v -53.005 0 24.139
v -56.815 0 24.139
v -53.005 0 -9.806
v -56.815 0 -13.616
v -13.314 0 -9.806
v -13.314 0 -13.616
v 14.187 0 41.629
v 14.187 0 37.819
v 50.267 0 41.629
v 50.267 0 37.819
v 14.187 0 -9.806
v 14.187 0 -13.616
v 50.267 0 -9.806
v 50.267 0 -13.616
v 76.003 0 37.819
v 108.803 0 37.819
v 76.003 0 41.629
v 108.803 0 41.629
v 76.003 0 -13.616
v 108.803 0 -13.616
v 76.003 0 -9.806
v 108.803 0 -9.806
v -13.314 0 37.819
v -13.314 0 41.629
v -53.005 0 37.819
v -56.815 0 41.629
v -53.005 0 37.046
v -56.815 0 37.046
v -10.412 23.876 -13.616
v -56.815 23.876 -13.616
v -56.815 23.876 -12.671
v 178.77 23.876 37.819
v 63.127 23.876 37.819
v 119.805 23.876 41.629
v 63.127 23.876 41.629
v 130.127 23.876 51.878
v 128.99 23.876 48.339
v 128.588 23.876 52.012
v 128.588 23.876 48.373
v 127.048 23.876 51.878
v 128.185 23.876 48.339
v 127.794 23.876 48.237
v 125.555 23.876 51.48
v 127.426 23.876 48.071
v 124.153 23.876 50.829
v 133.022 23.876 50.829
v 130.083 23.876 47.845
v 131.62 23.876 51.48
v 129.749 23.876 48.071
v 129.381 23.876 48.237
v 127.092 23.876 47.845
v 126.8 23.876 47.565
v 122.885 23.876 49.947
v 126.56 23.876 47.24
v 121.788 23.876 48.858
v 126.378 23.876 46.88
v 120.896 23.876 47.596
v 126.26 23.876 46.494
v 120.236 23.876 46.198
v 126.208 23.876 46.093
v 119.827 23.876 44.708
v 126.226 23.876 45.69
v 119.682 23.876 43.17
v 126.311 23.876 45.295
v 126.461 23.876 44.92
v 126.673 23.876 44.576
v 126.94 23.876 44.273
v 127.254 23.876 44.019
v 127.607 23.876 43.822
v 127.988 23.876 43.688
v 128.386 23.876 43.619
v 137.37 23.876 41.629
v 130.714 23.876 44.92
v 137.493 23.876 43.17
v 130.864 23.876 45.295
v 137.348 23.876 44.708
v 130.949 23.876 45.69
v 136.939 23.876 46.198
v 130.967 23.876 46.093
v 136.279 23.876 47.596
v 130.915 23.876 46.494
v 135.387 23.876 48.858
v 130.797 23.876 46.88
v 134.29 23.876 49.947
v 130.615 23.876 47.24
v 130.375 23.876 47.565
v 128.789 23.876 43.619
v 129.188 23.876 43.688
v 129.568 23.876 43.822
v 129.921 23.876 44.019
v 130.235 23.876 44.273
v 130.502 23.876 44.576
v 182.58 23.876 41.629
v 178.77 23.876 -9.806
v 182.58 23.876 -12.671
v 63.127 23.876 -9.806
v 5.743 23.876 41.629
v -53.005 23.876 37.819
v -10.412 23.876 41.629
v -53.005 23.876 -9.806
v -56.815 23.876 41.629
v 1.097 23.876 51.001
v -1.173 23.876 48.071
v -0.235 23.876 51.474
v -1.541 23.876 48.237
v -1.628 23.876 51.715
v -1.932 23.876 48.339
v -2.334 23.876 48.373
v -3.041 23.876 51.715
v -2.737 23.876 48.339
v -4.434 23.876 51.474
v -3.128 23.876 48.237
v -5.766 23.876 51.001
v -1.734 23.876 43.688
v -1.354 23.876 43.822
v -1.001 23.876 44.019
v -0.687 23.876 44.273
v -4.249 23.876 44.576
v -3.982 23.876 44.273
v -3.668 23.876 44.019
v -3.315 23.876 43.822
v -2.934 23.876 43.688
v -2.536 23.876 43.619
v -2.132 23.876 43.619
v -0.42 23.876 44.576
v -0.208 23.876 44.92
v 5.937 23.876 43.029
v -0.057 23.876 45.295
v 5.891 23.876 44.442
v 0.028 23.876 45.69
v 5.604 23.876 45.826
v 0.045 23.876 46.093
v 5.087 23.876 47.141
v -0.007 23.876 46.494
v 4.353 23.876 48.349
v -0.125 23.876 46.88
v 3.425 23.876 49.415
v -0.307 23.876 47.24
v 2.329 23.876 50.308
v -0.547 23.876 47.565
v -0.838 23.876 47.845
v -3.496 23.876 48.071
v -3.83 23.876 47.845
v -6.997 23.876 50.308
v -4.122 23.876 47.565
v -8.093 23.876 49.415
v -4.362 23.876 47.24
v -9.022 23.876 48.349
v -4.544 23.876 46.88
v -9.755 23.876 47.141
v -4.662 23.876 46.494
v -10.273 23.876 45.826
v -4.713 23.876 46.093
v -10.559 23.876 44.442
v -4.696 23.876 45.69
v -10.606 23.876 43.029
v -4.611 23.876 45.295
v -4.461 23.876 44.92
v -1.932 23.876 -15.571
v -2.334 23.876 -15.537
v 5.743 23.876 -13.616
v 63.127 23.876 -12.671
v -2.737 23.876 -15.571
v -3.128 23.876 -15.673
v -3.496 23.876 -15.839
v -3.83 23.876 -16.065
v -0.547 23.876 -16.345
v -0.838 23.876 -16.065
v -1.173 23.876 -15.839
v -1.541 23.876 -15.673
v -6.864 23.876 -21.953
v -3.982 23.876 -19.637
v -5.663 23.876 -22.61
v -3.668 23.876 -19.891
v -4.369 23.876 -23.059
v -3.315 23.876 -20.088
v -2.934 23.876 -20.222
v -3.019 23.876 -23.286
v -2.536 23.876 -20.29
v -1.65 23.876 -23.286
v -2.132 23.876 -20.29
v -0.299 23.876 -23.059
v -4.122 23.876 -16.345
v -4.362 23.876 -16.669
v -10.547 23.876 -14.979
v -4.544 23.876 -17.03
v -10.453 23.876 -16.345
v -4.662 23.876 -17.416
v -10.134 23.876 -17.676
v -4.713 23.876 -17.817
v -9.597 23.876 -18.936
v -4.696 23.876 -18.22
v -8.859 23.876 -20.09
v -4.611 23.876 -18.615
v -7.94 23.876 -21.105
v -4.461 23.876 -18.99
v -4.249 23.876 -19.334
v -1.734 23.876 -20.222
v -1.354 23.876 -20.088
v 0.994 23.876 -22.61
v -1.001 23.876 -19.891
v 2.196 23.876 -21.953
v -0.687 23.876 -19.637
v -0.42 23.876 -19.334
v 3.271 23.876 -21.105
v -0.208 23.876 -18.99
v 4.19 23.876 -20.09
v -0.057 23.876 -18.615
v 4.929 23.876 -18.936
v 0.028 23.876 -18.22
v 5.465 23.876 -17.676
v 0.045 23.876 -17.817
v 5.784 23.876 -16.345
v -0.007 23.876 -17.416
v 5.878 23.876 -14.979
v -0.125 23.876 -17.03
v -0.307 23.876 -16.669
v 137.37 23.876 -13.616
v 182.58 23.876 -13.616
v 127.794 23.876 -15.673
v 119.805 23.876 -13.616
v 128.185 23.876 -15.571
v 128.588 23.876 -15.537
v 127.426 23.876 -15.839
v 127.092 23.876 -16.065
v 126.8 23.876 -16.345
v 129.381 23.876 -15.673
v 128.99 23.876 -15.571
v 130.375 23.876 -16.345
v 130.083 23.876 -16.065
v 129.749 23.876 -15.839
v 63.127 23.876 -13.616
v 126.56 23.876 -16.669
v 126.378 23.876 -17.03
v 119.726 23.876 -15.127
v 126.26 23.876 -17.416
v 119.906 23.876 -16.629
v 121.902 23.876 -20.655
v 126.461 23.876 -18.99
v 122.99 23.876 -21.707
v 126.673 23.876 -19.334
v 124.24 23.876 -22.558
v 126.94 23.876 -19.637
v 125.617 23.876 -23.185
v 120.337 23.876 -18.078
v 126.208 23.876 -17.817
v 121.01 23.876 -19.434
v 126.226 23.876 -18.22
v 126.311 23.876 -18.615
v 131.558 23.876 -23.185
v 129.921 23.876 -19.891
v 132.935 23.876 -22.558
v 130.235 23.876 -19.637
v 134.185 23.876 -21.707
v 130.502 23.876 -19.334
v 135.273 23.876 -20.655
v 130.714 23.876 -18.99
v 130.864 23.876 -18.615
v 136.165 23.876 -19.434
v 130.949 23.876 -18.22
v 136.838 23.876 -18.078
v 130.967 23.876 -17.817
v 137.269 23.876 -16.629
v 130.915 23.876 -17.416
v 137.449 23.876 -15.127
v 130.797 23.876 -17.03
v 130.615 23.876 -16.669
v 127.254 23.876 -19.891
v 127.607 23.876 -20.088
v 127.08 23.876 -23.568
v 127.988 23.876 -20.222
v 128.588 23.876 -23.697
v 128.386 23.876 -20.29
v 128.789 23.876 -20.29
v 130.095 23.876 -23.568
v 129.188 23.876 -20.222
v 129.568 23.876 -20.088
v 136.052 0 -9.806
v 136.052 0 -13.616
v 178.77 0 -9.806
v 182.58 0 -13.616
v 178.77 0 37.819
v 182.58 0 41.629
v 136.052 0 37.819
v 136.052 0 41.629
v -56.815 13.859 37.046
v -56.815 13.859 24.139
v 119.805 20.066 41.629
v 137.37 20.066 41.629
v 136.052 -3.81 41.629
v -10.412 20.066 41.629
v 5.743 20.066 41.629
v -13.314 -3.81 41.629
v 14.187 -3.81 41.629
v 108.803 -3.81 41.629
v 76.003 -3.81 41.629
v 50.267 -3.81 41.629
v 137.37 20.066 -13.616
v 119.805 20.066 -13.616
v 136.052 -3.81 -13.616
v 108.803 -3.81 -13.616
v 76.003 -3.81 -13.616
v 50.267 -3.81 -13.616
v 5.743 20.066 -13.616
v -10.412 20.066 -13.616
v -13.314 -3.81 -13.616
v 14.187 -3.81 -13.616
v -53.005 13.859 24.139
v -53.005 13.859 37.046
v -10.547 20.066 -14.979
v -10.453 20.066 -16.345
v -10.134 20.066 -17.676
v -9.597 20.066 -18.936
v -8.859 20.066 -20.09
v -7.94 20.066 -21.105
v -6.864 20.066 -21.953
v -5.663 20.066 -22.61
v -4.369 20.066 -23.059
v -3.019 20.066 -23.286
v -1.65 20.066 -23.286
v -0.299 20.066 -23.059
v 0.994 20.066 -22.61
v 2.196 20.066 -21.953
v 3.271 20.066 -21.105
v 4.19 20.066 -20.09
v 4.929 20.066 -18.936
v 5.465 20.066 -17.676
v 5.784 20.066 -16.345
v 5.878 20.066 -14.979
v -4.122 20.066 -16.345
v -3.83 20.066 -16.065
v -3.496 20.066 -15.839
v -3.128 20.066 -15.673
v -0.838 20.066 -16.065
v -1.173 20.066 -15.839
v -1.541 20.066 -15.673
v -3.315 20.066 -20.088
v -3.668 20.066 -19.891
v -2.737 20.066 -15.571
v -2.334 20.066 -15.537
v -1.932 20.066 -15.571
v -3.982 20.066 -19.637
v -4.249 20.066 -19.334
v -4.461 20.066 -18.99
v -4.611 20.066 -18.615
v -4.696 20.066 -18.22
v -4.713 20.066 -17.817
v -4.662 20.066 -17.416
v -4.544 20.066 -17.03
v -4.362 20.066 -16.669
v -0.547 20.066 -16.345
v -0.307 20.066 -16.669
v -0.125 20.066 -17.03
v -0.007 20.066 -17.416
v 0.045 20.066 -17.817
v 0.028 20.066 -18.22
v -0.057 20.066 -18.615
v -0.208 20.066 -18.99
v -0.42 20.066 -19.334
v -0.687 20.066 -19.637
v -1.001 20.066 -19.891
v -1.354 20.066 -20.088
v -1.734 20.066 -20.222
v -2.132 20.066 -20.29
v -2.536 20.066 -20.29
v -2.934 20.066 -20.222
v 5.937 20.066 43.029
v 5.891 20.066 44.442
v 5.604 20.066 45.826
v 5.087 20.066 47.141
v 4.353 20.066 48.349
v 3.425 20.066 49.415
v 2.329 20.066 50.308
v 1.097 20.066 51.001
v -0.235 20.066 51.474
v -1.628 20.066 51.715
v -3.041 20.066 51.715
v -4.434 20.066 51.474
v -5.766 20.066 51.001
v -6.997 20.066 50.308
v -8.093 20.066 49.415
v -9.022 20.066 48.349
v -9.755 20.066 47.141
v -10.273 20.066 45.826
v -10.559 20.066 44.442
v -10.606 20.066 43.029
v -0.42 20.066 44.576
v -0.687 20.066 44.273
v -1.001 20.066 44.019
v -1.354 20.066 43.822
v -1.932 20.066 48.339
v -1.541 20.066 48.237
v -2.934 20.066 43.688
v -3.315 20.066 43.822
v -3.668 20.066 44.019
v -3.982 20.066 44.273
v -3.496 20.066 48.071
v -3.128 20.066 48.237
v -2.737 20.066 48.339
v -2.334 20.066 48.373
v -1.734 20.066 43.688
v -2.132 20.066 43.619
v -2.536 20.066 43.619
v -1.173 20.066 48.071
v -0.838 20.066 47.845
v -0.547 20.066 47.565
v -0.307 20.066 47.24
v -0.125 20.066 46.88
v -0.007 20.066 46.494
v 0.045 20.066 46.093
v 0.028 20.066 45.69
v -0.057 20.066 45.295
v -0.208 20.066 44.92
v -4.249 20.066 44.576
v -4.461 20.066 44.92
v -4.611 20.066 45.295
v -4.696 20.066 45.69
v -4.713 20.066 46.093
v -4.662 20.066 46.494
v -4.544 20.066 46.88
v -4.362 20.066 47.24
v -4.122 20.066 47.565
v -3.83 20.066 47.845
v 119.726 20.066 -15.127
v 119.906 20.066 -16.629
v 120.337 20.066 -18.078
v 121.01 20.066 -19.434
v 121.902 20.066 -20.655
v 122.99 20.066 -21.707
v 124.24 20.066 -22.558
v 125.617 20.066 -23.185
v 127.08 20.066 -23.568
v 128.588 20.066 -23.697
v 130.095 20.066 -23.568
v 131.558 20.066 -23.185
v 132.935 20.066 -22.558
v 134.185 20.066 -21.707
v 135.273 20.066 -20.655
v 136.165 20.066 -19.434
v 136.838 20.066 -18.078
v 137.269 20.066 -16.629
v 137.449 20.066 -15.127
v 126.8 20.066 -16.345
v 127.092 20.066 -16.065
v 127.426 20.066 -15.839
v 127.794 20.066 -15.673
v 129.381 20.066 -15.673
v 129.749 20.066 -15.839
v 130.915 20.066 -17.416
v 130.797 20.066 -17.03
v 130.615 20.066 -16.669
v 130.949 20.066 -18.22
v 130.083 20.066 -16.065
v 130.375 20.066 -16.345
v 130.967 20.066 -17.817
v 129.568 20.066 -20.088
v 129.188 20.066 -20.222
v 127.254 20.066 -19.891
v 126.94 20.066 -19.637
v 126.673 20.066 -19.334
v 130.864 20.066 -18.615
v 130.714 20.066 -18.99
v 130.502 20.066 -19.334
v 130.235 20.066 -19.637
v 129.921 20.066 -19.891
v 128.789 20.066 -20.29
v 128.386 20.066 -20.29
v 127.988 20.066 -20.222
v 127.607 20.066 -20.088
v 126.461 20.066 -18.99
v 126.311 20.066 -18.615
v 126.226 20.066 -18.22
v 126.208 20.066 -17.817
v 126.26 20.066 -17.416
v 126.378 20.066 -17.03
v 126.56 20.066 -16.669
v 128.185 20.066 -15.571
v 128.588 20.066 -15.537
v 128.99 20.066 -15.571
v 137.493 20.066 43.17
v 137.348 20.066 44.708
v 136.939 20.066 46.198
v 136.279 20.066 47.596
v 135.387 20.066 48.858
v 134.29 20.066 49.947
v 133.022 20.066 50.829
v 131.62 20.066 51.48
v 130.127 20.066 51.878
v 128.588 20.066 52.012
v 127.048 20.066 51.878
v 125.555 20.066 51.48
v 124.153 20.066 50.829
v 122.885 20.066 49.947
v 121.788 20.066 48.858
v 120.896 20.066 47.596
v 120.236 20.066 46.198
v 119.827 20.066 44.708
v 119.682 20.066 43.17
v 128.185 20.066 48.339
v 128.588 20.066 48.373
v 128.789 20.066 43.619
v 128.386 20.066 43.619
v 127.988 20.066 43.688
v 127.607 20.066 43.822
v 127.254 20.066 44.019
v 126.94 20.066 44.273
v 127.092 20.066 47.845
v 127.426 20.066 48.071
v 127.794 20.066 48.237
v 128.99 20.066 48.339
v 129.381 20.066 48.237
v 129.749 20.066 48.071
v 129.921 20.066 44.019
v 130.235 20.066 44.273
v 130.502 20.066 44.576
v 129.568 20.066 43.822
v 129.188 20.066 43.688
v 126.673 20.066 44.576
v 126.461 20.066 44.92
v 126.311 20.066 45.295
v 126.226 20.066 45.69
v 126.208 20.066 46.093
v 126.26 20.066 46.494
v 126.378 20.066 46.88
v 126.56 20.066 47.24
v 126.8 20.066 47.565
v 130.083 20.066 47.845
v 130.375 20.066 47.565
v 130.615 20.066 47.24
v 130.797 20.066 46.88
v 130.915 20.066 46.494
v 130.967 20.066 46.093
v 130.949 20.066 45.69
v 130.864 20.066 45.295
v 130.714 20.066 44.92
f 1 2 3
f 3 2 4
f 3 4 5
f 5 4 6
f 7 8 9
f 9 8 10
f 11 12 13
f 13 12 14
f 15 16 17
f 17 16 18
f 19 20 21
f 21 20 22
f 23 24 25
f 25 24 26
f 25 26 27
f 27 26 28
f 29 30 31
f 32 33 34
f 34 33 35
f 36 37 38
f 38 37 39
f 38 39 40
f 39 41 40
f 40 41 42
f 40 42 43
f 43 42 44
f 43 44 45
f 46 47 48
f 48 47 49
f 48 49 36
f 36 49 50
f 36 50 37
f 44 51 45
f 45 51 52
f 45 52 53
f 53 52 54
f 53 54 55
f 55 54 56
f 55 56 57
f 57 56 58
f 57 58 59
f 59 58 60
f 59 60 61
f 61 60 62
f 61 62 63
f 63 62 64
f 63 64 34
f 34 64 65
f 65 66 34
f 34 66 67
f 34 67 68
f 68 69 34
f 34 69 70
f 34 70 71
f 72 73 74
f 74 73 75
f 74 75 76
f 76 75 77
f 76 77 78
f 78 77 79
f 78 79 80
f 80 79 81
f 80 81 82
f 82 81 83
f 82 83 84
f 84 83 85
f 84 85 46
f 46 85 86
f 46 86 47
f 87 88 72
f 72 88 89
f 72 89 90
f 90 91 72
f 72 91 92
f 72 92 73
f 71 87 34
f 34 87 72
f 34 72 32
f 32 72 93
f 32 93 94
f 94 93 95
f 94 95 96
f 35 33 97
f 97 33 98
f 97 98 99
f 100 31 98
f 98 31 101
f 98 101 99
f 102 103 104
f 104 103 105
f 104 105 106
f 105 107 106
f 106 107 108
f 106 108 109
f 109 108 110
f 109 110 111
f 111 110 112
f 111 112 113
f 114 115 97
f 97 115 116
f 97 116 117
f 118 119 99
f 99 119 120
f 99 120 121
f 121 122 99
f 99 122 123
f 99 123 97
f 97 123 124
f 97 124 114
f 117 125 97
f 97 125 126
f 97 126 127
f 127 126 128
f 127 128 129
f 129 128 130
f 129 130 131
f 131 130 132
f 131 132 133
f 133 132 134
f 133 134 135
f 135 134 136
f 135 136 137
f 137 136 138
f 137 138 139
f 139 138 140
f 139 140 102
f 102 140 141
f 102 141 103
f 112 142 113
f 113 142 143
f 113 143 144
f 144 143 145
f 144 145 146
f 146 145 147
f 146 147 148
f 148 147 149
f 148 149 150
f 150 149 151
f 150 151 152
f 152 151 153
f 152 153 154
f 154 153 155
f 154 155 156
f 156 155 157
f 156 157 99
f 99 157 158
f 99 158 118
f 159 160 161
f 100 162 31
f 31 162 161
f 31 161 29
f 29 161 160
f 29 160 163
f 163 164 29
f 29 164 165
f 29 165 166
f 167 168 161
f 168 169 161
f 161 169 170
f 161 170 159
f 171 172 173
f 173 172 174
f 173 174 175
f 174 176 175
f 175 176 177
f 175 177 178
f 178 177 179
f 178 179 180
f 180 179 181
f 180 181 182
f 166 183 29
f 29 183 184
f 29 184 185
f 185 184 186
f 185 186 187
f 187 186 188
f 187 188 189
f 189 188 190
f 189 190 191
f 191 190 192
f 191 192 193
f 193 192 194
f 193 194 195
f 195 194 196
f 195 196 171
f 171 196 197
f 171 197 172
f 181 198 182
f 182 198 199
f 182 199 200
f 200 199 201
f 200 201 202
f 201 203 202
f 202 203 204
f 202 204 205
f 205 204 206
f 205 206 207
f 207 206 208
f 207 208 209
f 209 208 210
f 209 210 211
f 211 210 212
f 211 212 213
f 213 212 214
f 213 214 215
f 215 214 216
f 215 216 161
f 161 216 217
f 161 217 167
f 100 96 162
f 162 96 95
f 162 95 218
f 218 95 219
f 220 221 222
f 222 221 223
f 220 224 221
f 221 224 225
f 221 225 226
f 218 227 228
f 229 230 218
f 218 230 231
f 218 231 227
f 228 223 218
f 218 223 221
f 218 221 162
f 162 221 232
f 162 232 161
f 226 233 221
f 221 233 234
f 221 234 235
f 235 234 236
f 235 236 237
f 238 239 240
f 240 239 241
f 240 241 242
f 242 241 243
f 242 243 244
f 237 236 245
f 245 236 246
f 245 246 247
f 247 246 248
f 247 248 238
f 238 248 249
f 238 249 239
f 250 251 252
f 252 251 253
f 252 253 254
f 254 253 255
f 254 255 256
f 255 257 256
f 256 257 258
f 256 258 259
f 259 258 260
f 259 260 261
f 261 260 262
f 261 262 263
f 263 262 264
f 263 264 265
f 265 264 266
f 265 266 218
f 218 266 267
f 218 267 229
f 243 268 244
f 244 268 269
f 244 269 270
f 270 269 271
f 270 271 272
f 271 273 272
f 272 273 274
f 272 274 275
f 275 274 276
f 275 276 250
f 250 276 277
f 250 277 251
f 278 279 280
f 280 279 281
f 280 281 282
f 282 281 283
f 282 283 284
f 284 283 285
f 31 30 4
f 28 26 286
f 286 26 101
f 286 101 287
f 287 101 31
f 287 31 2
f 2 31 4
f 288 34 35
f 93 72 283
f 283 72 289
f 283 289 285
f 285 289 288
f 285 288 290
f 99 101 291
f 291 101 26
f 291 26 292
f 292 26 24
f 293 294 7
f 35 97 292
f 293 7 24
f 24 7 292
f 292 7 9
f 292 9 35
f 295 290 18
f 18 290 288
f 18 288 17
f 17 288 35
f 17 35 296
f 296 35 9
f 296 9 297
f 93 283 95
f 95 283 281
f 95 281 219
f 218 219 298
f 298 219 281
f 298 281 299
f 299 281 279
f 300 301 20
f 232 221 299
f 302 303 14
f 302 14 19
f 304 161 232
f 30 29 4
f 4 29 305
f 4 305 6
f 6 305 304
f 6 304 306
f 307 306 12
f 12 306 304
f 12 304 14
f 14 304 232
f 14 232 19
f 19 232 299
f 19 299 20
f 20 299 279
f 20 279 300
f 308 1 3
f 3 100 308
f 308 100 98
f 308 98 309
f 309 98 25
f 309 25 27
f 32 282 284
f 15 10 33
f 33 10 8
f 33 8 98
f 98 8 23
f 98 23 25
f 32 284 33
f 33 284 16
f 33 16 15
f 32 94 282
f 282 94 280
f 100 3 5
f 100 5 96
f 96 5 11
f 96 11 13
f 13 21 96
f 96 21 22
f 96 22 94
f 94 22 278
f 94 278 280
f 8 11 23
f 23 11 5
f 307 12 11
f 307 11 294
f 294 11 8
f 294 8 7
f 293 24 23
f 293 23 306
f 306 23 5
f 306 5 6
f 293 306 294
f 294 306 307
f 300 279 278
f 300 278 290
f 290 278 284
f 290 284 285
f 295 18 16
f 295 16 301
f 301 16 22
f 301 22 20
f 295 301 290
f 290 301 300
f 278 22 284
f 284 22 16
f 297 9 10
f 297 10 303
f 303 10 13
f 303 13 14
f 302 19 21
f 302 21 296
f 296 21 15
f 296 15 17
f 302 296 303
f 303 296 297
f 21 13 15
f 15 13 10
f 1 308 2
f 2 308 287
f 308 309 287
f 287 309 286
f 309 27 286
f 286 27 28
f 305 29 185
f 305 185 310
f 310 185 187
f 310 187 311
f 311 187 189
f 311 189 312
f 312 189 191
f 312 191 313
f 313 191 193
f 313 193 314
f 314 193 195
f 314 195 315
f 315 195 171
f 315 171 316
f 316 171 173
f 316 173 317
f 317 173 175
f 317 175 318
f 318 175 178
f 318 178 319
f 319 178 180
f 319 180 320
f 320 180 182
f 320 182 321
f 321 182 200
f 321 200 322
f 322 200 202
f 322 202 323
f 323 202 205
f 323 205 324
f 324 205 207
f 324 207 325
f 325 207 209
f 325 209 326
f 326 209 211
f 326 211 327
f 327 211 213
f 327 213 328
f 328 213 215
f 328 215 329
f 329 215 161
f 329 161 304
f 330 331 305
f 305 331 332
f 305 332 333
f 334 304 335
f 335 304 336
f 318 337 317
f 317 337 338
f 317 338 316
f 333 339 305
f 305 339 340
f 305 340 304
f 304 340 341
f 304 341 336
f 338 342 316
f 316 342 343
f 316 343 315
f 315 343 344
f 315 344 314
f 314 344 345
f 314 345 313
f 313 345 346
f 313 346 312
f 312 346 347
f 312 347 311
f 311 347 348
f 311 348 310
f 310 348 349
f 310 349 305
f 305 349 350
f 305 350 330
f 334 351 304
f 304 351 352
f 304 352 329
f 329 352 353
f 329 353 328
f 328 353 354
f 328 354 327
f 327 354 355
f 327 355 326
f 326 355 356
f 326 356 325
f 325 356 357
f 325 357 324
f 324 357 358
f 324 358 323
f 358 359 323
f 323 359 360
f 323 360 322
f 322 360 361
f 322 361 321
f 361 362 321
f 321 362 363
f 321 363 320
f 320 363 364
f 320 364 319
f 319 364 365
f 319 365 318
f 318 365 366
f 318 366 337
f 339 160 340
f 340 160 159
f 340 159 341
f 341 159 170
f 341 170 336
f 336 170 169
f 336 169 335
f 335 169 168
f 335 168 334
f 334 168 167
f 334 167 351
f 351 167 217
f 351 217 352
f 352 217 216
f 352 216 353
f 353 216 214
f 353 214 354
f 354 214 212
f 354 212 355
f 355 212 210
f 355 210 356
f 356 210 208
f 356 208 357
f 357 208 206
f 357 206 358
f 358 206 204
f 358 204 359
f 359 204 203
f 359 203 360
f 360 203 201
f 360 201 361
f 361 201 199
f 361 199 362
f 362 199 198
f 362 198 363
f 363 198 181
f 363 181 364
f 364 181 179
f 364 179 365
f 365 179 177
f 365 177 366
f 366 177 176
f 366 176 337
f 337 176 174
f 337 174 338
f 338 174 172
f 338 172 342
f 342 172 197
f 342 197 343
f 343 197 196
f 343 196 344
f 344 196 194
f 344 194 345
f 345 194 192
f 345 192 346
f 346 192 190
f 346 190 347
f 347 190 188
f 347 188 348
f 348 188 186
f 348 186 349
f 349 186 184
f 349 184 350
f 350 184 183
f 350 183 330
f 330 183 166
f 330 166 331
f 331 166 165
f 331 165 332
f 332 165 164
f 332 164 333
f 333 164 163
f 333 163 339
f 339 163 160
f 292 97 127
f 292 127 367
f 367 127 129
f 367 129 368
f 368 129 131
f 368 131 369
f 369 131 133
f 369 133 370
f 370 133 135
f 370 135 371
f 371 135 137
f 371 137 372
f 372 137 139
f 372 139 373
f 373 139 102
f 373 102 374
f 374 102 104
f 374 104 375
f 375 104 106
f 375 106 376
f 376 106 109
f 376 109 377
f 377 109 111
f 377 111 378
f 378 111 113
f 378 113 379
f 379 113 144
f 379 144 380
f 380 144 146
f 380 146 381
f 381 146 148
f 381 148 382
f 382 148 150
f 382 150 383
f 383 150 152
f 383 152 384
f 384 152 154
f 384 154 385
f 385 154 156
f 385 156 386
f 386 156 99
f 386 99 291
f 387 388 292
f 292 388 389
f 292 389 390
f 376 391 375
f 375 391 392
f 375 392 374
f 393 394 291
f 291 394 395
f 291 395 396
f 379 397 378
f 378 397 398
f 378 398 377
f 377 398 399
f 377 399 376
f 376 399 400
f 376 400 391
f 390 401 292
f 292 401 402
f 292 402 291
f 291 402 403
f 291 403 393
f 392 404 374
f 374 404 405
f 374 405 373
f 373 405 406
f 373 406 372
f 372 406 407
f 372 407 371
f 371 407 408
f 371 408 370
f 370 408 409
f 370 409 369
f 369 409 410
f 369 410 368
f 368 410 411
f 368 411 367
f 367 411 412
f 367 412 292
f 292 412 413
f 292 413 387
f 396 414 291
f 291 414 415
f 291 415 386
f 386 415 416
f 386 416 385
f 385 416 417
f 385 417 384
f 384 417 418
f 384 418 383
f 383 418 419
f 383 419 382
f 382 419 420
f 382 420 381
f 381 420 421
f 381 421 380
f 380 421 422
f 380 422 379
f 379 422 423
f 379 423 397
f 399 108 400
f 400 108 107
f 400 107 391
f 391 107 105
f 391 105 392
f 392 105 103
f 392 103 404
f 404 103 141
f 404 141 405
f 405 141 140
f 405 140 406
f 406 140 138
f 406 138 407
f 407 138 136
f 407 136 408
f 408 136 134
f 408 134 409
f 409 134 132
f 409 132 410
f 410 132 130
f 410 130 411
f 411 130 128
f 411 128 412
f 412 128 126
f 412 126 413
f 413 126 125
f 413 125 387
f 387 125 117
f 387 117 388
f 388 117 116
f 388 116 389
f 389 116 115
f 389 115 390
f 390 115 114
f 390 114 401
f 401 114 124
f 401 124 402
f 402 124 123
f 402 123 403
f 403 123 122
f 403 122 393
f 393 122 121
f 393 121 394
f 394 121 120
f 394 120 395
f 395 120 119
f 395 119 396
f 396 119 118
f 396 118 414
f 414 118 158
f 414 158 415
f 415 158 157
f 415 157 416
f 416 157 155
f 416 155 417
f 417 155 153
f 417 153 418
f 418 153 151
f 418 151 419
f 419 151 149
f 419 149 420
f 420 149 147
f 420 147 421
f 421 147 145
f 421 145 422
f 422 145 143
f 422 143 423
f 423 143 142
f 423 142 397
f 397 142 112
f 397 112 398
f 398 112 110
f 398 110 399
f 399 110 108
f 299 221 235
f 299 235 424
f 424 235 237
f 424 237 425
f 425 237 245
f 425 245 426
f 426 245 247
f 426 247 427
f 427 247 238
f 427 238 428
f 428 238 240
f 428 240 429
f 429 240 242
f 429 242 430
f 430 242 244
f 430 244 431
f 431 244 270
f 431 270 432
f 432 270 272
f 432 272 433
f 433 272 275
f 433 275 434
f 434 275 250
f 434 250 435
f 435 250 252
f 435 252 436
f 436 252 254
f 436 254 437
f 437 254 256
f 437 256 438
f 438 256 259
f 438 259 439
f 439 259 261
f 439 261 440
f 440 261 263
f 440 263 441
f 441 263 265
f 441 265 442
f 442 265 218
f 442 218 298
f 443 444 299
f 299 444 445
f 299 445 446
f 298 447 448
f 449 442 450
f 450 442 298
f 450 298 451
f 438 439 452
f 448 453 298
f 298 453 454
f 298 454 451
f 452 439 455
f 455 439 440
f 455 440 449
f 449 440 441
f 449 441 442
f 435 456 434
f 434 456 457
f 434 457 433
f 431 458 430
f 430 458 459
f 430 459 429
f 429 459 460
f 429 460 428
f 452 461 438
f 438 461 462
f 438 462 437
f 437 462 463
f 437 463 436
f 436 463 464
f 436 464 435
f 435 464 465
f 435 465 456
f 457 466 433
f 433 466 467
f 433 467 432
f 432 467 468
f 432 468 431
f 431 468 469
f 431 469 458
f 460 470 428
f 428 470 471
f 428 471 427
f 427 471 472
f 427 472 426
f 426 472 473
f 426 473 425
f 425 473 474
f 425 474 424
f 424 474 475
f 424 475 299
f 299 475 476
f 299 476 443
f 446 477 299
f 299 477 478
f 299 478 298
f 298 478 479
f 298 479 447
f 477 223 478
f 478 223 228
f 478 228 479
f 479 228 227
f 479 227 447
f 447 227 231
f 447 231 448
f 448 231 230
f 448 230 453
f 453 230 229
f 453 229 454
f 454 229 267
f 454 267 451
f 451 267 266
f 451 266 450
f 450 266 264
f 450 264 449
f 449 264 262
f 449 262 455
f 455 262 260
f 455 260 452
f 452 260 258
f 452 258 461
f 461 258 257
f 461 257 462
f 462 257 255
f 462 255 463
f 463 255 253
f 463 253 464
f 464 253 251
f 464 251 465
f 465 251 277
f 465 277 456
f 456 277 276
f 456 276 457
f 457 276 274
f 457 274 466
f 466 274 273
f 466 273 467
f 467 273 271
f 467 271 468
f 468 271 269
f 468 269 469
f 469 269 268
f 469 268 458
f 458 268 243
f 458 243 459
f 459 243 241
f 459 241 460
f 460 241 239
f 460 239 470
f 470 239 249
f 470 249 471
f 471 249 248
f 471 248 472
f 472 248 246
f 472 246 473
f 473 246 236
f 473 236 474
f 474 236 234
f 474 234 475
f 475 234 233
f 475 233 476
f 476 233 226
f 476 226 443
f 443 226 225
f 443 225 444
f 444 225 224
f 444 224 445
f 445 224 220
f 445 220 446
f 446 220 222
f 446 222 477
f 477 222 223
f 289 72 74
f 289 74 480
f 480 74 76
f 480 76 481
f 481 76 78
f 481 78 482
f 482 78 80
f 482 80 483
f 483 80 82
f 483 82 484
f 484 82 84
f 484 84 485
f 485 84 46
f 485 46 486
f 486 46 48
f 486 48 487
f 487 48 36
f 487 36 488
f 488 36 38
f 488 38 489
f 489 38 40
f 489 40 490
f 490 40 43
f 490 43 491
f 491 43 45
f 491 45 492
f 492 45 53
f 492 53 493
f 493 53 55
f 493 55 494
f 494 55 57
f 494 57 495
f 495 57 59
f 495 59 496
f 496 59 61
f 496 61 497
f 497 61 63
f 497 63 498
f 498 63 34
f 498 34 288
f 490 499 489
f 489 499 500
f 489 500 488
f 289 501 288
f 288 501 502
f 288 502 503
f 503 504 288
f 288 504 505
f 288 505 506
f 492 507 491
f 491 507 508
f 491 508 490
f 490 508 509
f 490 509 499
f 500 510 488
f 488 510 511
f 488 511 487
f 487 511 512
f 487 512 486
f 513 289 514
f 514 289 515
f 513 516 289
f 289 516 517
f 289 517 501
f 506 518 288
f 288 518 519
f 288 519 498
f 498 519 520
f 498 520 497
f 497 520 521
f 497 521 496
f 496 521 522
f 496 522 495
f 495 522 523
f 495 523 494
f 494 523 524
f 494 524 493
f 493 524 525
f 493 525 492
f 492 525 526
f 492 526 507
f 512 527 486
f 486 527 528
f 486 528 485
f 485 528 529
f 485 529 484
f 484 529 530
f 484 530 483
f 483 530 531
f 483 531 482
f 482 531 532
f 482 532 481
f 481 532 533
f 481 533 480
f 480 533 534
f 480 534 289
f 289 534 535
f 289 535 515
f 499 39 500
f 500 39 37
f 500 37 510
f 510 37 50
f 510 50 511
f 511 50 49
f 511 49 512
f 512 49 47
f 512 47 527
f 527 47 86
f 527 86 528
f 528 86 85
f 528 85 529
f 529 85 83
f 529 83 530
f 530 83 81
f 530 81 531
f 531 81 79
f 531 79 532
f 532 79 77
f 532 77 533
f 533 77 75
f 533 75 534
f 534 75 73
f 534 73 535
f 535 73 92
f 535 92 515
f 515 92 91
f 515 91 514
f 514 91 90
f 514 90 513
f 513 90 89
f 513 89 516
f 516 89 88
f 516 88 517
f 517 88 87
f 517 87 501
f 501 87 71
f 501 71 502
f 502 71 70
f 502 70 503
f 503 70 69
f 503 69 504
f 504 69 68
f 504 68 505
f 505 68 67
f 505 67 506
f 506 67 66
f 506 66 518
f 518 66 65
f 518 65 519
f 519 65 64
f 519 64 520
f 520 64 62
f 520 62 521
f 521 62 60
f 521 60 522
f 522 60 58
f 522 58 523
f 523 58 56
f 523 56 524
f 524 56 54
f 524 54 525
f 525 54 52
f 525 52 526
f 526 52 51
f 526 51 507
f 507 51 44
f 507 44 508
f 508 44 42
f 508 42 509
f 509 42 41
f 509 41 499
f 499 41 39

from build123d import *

# Parameters (mm, degrees)
SKETCH1_W           = 239.395
SKETCH1_H           = 55.245
SKETCH1_W_2         = 231.775
SKETCH1_H_2         = 47.625
BOSS_EXTRUDE1_DEPTH = 23.876
SKETCH2_W           = 27.501576043
SKETCH2_H           = 47.625
SKETCH2_W_2         = 27.249268006
SKETCH2_H_2         = 3.81
SKETCH2_W_3         = 25.735419783
SKETCH2_H_3         = 55.245
BOSS_EXTRUDE2_DEPTH = 3.81
SKETCH3_W           = 12.907242676
SKETCH3_H           = 13.858802321
CUT_EXTRUDE1_DEPTH  = 3.81
SKETCH4_R           = 2.38125
BOSS_EXTRUDE3_DEPTH = 3.81


with BuildPart() as part:
    # Sketch1 → Boss-Extrude1 (new body)
    with BuildSketch(Plane(origin=(0, 0, 0), x_dir=(1, 0, 0), z_dir=(0, 1, 0))):
        with Locations((62.882734648, -14.00661841)):
            Rectangle(SKETCH1_W, SKETCH1_H)
        with Locations((62.882734648, -14.00661841)):
            Rectangle(SKETCH1_W_2, SKETCH1_H_2, mode=Mode.SUBTRACT)
    extrude(amount=BOSS_EXTRUDE1_DEPTH)

    # Sketch2 → Boss-Extrude2 (add)
    with BuildSketch(Plane.XZ):
        with Locations((0.436495468, 14.00661841)):
            Rectangle(SKETCH2_W, SKETCH2_H)
        with Locations((122.427431402, 14.00661841)):
            Rectangle(SKETCH2_W_2, SKETCH2_H)
        with Locations((122.427431402, 39.72411841)):
            Rectangle(SKETCH2_W_2, SKETCH2_H_2)
        with Locations((0.436495468, 39.72411841)):
            Rectangle(SKETCH2_W, SKETCH2_H_2)
        with Locations((0.436495468, -11.71088159)):
            Rectangle(SKETCH2_W, SKETCH2_H_2)
        with Locations((122.427431402, -11.71088159)):
            Rectangle(SKETCH2_W_2, SKETCH2_H_2)
        with Locations((63.135042686, 14.00661841)):
            Rectangle(SKETCH2_W_3, SKETCH2_H_3)
    extrude(amount=BOSS_EXTRUDE2_DEPTH)

    # Sketch3 → Cut-Extrude1 (cut)
    with BuildSketch(Plane.ZY.offset(56.814765352)):
        with Locations((30.592232843, 6.929401161)):
            Rectangle(SKETCH3_W, SKETCH3_H)
    extrude(amount=-CUT_EXTRUDE1_DEPTH, mode=Mode.SUBTRACT)

    # Sketch4 → Boss-Extrude3 (add)
    # profile 1 of 4: a face of its own
    with BuildSketch(Plane(origin=(0, 23.876, 0), x_dir=(1, 0, 0), z_dir=(0, 1, 0))):
        with BuildLine():
            Line((-10.412074004, 13.61588159), (5.743340555, 13.61588159))
            ThreePointArc((5.743340555, 13.61588159), (-2.334366725, 23.314823136), (-10.412074004, 13.61588159))
        make_face()
        with Locations(Location((-2.334366725, 17.917758685, 0), (0, 0, 270))):
            Circle(SKETCH4_R, mode=Mode.SUBTRACT)
    # profile 2 of 4: a face of its own
    with BuildSketch(Plane(origin=(0, 23.876, 0), x_dir=(1, 0, 0), z_dir=(0, 1, 0))):
        with BuildLine():
            Line((-10.412074004, -41.62911841), (5.743340555, -41.62911841))
            ThreePointArc((5.743340555, -41.62911841), (-2.334366725, -51.744975779), (-10.412074004, -41.62911841))
        make_face()
        with Locations(Location((-2.334366725, -45.991983403, 0), (0, 0, 270))):
            Circle(SKETCH4_R, mode=Mode.SUBTRACT)
    # profile 3 of 4: a face of its own
    with BuildSketch(Plane(origin=(0, 23.876, 0), x_dir=(1, 0, 0), z_dir=(0, 1, 0))):
        with BuildLine():
            Line((119.805130889, -41.62911841), (137.369914175, -41.62911841))
            ThreePointArc((137.369914175, -41.62911841), (128.587522532, -52.012034088), (119.805130889, -41.62911841))
        make_face()
        with Locations(Location((128.587522532, -45.991983403, 0), (0, 0, 270))):
            Circle(SKETCH4_R, mode=Mode.SUBTRACT)
    # profile 4 of 4: a face of its own
    with BuildSketch(Plane(origin=(0, 23.876, 0), x_dir=(1, 0, 0), z_dir=(0, 1, 0))):
        with BuildLine():
            Line((119.805130889, 13.61588159), (137.369914175, 13.61588159))
            ThreePointArc((137.369914175, 13.61588159), (128.587522532, 23.697328425), (119.805130889, 13.61588159))
        make_face()
        with Locations(Location((128.587522532, 17.917758685, 0), (0, 0, 270))):
            Circle(SKETCH4_R, mode=Mode.SUBTRACT)
    extrude(amount=-BOSS_EXTRUDE3_DEPTH)


solid = part.part
